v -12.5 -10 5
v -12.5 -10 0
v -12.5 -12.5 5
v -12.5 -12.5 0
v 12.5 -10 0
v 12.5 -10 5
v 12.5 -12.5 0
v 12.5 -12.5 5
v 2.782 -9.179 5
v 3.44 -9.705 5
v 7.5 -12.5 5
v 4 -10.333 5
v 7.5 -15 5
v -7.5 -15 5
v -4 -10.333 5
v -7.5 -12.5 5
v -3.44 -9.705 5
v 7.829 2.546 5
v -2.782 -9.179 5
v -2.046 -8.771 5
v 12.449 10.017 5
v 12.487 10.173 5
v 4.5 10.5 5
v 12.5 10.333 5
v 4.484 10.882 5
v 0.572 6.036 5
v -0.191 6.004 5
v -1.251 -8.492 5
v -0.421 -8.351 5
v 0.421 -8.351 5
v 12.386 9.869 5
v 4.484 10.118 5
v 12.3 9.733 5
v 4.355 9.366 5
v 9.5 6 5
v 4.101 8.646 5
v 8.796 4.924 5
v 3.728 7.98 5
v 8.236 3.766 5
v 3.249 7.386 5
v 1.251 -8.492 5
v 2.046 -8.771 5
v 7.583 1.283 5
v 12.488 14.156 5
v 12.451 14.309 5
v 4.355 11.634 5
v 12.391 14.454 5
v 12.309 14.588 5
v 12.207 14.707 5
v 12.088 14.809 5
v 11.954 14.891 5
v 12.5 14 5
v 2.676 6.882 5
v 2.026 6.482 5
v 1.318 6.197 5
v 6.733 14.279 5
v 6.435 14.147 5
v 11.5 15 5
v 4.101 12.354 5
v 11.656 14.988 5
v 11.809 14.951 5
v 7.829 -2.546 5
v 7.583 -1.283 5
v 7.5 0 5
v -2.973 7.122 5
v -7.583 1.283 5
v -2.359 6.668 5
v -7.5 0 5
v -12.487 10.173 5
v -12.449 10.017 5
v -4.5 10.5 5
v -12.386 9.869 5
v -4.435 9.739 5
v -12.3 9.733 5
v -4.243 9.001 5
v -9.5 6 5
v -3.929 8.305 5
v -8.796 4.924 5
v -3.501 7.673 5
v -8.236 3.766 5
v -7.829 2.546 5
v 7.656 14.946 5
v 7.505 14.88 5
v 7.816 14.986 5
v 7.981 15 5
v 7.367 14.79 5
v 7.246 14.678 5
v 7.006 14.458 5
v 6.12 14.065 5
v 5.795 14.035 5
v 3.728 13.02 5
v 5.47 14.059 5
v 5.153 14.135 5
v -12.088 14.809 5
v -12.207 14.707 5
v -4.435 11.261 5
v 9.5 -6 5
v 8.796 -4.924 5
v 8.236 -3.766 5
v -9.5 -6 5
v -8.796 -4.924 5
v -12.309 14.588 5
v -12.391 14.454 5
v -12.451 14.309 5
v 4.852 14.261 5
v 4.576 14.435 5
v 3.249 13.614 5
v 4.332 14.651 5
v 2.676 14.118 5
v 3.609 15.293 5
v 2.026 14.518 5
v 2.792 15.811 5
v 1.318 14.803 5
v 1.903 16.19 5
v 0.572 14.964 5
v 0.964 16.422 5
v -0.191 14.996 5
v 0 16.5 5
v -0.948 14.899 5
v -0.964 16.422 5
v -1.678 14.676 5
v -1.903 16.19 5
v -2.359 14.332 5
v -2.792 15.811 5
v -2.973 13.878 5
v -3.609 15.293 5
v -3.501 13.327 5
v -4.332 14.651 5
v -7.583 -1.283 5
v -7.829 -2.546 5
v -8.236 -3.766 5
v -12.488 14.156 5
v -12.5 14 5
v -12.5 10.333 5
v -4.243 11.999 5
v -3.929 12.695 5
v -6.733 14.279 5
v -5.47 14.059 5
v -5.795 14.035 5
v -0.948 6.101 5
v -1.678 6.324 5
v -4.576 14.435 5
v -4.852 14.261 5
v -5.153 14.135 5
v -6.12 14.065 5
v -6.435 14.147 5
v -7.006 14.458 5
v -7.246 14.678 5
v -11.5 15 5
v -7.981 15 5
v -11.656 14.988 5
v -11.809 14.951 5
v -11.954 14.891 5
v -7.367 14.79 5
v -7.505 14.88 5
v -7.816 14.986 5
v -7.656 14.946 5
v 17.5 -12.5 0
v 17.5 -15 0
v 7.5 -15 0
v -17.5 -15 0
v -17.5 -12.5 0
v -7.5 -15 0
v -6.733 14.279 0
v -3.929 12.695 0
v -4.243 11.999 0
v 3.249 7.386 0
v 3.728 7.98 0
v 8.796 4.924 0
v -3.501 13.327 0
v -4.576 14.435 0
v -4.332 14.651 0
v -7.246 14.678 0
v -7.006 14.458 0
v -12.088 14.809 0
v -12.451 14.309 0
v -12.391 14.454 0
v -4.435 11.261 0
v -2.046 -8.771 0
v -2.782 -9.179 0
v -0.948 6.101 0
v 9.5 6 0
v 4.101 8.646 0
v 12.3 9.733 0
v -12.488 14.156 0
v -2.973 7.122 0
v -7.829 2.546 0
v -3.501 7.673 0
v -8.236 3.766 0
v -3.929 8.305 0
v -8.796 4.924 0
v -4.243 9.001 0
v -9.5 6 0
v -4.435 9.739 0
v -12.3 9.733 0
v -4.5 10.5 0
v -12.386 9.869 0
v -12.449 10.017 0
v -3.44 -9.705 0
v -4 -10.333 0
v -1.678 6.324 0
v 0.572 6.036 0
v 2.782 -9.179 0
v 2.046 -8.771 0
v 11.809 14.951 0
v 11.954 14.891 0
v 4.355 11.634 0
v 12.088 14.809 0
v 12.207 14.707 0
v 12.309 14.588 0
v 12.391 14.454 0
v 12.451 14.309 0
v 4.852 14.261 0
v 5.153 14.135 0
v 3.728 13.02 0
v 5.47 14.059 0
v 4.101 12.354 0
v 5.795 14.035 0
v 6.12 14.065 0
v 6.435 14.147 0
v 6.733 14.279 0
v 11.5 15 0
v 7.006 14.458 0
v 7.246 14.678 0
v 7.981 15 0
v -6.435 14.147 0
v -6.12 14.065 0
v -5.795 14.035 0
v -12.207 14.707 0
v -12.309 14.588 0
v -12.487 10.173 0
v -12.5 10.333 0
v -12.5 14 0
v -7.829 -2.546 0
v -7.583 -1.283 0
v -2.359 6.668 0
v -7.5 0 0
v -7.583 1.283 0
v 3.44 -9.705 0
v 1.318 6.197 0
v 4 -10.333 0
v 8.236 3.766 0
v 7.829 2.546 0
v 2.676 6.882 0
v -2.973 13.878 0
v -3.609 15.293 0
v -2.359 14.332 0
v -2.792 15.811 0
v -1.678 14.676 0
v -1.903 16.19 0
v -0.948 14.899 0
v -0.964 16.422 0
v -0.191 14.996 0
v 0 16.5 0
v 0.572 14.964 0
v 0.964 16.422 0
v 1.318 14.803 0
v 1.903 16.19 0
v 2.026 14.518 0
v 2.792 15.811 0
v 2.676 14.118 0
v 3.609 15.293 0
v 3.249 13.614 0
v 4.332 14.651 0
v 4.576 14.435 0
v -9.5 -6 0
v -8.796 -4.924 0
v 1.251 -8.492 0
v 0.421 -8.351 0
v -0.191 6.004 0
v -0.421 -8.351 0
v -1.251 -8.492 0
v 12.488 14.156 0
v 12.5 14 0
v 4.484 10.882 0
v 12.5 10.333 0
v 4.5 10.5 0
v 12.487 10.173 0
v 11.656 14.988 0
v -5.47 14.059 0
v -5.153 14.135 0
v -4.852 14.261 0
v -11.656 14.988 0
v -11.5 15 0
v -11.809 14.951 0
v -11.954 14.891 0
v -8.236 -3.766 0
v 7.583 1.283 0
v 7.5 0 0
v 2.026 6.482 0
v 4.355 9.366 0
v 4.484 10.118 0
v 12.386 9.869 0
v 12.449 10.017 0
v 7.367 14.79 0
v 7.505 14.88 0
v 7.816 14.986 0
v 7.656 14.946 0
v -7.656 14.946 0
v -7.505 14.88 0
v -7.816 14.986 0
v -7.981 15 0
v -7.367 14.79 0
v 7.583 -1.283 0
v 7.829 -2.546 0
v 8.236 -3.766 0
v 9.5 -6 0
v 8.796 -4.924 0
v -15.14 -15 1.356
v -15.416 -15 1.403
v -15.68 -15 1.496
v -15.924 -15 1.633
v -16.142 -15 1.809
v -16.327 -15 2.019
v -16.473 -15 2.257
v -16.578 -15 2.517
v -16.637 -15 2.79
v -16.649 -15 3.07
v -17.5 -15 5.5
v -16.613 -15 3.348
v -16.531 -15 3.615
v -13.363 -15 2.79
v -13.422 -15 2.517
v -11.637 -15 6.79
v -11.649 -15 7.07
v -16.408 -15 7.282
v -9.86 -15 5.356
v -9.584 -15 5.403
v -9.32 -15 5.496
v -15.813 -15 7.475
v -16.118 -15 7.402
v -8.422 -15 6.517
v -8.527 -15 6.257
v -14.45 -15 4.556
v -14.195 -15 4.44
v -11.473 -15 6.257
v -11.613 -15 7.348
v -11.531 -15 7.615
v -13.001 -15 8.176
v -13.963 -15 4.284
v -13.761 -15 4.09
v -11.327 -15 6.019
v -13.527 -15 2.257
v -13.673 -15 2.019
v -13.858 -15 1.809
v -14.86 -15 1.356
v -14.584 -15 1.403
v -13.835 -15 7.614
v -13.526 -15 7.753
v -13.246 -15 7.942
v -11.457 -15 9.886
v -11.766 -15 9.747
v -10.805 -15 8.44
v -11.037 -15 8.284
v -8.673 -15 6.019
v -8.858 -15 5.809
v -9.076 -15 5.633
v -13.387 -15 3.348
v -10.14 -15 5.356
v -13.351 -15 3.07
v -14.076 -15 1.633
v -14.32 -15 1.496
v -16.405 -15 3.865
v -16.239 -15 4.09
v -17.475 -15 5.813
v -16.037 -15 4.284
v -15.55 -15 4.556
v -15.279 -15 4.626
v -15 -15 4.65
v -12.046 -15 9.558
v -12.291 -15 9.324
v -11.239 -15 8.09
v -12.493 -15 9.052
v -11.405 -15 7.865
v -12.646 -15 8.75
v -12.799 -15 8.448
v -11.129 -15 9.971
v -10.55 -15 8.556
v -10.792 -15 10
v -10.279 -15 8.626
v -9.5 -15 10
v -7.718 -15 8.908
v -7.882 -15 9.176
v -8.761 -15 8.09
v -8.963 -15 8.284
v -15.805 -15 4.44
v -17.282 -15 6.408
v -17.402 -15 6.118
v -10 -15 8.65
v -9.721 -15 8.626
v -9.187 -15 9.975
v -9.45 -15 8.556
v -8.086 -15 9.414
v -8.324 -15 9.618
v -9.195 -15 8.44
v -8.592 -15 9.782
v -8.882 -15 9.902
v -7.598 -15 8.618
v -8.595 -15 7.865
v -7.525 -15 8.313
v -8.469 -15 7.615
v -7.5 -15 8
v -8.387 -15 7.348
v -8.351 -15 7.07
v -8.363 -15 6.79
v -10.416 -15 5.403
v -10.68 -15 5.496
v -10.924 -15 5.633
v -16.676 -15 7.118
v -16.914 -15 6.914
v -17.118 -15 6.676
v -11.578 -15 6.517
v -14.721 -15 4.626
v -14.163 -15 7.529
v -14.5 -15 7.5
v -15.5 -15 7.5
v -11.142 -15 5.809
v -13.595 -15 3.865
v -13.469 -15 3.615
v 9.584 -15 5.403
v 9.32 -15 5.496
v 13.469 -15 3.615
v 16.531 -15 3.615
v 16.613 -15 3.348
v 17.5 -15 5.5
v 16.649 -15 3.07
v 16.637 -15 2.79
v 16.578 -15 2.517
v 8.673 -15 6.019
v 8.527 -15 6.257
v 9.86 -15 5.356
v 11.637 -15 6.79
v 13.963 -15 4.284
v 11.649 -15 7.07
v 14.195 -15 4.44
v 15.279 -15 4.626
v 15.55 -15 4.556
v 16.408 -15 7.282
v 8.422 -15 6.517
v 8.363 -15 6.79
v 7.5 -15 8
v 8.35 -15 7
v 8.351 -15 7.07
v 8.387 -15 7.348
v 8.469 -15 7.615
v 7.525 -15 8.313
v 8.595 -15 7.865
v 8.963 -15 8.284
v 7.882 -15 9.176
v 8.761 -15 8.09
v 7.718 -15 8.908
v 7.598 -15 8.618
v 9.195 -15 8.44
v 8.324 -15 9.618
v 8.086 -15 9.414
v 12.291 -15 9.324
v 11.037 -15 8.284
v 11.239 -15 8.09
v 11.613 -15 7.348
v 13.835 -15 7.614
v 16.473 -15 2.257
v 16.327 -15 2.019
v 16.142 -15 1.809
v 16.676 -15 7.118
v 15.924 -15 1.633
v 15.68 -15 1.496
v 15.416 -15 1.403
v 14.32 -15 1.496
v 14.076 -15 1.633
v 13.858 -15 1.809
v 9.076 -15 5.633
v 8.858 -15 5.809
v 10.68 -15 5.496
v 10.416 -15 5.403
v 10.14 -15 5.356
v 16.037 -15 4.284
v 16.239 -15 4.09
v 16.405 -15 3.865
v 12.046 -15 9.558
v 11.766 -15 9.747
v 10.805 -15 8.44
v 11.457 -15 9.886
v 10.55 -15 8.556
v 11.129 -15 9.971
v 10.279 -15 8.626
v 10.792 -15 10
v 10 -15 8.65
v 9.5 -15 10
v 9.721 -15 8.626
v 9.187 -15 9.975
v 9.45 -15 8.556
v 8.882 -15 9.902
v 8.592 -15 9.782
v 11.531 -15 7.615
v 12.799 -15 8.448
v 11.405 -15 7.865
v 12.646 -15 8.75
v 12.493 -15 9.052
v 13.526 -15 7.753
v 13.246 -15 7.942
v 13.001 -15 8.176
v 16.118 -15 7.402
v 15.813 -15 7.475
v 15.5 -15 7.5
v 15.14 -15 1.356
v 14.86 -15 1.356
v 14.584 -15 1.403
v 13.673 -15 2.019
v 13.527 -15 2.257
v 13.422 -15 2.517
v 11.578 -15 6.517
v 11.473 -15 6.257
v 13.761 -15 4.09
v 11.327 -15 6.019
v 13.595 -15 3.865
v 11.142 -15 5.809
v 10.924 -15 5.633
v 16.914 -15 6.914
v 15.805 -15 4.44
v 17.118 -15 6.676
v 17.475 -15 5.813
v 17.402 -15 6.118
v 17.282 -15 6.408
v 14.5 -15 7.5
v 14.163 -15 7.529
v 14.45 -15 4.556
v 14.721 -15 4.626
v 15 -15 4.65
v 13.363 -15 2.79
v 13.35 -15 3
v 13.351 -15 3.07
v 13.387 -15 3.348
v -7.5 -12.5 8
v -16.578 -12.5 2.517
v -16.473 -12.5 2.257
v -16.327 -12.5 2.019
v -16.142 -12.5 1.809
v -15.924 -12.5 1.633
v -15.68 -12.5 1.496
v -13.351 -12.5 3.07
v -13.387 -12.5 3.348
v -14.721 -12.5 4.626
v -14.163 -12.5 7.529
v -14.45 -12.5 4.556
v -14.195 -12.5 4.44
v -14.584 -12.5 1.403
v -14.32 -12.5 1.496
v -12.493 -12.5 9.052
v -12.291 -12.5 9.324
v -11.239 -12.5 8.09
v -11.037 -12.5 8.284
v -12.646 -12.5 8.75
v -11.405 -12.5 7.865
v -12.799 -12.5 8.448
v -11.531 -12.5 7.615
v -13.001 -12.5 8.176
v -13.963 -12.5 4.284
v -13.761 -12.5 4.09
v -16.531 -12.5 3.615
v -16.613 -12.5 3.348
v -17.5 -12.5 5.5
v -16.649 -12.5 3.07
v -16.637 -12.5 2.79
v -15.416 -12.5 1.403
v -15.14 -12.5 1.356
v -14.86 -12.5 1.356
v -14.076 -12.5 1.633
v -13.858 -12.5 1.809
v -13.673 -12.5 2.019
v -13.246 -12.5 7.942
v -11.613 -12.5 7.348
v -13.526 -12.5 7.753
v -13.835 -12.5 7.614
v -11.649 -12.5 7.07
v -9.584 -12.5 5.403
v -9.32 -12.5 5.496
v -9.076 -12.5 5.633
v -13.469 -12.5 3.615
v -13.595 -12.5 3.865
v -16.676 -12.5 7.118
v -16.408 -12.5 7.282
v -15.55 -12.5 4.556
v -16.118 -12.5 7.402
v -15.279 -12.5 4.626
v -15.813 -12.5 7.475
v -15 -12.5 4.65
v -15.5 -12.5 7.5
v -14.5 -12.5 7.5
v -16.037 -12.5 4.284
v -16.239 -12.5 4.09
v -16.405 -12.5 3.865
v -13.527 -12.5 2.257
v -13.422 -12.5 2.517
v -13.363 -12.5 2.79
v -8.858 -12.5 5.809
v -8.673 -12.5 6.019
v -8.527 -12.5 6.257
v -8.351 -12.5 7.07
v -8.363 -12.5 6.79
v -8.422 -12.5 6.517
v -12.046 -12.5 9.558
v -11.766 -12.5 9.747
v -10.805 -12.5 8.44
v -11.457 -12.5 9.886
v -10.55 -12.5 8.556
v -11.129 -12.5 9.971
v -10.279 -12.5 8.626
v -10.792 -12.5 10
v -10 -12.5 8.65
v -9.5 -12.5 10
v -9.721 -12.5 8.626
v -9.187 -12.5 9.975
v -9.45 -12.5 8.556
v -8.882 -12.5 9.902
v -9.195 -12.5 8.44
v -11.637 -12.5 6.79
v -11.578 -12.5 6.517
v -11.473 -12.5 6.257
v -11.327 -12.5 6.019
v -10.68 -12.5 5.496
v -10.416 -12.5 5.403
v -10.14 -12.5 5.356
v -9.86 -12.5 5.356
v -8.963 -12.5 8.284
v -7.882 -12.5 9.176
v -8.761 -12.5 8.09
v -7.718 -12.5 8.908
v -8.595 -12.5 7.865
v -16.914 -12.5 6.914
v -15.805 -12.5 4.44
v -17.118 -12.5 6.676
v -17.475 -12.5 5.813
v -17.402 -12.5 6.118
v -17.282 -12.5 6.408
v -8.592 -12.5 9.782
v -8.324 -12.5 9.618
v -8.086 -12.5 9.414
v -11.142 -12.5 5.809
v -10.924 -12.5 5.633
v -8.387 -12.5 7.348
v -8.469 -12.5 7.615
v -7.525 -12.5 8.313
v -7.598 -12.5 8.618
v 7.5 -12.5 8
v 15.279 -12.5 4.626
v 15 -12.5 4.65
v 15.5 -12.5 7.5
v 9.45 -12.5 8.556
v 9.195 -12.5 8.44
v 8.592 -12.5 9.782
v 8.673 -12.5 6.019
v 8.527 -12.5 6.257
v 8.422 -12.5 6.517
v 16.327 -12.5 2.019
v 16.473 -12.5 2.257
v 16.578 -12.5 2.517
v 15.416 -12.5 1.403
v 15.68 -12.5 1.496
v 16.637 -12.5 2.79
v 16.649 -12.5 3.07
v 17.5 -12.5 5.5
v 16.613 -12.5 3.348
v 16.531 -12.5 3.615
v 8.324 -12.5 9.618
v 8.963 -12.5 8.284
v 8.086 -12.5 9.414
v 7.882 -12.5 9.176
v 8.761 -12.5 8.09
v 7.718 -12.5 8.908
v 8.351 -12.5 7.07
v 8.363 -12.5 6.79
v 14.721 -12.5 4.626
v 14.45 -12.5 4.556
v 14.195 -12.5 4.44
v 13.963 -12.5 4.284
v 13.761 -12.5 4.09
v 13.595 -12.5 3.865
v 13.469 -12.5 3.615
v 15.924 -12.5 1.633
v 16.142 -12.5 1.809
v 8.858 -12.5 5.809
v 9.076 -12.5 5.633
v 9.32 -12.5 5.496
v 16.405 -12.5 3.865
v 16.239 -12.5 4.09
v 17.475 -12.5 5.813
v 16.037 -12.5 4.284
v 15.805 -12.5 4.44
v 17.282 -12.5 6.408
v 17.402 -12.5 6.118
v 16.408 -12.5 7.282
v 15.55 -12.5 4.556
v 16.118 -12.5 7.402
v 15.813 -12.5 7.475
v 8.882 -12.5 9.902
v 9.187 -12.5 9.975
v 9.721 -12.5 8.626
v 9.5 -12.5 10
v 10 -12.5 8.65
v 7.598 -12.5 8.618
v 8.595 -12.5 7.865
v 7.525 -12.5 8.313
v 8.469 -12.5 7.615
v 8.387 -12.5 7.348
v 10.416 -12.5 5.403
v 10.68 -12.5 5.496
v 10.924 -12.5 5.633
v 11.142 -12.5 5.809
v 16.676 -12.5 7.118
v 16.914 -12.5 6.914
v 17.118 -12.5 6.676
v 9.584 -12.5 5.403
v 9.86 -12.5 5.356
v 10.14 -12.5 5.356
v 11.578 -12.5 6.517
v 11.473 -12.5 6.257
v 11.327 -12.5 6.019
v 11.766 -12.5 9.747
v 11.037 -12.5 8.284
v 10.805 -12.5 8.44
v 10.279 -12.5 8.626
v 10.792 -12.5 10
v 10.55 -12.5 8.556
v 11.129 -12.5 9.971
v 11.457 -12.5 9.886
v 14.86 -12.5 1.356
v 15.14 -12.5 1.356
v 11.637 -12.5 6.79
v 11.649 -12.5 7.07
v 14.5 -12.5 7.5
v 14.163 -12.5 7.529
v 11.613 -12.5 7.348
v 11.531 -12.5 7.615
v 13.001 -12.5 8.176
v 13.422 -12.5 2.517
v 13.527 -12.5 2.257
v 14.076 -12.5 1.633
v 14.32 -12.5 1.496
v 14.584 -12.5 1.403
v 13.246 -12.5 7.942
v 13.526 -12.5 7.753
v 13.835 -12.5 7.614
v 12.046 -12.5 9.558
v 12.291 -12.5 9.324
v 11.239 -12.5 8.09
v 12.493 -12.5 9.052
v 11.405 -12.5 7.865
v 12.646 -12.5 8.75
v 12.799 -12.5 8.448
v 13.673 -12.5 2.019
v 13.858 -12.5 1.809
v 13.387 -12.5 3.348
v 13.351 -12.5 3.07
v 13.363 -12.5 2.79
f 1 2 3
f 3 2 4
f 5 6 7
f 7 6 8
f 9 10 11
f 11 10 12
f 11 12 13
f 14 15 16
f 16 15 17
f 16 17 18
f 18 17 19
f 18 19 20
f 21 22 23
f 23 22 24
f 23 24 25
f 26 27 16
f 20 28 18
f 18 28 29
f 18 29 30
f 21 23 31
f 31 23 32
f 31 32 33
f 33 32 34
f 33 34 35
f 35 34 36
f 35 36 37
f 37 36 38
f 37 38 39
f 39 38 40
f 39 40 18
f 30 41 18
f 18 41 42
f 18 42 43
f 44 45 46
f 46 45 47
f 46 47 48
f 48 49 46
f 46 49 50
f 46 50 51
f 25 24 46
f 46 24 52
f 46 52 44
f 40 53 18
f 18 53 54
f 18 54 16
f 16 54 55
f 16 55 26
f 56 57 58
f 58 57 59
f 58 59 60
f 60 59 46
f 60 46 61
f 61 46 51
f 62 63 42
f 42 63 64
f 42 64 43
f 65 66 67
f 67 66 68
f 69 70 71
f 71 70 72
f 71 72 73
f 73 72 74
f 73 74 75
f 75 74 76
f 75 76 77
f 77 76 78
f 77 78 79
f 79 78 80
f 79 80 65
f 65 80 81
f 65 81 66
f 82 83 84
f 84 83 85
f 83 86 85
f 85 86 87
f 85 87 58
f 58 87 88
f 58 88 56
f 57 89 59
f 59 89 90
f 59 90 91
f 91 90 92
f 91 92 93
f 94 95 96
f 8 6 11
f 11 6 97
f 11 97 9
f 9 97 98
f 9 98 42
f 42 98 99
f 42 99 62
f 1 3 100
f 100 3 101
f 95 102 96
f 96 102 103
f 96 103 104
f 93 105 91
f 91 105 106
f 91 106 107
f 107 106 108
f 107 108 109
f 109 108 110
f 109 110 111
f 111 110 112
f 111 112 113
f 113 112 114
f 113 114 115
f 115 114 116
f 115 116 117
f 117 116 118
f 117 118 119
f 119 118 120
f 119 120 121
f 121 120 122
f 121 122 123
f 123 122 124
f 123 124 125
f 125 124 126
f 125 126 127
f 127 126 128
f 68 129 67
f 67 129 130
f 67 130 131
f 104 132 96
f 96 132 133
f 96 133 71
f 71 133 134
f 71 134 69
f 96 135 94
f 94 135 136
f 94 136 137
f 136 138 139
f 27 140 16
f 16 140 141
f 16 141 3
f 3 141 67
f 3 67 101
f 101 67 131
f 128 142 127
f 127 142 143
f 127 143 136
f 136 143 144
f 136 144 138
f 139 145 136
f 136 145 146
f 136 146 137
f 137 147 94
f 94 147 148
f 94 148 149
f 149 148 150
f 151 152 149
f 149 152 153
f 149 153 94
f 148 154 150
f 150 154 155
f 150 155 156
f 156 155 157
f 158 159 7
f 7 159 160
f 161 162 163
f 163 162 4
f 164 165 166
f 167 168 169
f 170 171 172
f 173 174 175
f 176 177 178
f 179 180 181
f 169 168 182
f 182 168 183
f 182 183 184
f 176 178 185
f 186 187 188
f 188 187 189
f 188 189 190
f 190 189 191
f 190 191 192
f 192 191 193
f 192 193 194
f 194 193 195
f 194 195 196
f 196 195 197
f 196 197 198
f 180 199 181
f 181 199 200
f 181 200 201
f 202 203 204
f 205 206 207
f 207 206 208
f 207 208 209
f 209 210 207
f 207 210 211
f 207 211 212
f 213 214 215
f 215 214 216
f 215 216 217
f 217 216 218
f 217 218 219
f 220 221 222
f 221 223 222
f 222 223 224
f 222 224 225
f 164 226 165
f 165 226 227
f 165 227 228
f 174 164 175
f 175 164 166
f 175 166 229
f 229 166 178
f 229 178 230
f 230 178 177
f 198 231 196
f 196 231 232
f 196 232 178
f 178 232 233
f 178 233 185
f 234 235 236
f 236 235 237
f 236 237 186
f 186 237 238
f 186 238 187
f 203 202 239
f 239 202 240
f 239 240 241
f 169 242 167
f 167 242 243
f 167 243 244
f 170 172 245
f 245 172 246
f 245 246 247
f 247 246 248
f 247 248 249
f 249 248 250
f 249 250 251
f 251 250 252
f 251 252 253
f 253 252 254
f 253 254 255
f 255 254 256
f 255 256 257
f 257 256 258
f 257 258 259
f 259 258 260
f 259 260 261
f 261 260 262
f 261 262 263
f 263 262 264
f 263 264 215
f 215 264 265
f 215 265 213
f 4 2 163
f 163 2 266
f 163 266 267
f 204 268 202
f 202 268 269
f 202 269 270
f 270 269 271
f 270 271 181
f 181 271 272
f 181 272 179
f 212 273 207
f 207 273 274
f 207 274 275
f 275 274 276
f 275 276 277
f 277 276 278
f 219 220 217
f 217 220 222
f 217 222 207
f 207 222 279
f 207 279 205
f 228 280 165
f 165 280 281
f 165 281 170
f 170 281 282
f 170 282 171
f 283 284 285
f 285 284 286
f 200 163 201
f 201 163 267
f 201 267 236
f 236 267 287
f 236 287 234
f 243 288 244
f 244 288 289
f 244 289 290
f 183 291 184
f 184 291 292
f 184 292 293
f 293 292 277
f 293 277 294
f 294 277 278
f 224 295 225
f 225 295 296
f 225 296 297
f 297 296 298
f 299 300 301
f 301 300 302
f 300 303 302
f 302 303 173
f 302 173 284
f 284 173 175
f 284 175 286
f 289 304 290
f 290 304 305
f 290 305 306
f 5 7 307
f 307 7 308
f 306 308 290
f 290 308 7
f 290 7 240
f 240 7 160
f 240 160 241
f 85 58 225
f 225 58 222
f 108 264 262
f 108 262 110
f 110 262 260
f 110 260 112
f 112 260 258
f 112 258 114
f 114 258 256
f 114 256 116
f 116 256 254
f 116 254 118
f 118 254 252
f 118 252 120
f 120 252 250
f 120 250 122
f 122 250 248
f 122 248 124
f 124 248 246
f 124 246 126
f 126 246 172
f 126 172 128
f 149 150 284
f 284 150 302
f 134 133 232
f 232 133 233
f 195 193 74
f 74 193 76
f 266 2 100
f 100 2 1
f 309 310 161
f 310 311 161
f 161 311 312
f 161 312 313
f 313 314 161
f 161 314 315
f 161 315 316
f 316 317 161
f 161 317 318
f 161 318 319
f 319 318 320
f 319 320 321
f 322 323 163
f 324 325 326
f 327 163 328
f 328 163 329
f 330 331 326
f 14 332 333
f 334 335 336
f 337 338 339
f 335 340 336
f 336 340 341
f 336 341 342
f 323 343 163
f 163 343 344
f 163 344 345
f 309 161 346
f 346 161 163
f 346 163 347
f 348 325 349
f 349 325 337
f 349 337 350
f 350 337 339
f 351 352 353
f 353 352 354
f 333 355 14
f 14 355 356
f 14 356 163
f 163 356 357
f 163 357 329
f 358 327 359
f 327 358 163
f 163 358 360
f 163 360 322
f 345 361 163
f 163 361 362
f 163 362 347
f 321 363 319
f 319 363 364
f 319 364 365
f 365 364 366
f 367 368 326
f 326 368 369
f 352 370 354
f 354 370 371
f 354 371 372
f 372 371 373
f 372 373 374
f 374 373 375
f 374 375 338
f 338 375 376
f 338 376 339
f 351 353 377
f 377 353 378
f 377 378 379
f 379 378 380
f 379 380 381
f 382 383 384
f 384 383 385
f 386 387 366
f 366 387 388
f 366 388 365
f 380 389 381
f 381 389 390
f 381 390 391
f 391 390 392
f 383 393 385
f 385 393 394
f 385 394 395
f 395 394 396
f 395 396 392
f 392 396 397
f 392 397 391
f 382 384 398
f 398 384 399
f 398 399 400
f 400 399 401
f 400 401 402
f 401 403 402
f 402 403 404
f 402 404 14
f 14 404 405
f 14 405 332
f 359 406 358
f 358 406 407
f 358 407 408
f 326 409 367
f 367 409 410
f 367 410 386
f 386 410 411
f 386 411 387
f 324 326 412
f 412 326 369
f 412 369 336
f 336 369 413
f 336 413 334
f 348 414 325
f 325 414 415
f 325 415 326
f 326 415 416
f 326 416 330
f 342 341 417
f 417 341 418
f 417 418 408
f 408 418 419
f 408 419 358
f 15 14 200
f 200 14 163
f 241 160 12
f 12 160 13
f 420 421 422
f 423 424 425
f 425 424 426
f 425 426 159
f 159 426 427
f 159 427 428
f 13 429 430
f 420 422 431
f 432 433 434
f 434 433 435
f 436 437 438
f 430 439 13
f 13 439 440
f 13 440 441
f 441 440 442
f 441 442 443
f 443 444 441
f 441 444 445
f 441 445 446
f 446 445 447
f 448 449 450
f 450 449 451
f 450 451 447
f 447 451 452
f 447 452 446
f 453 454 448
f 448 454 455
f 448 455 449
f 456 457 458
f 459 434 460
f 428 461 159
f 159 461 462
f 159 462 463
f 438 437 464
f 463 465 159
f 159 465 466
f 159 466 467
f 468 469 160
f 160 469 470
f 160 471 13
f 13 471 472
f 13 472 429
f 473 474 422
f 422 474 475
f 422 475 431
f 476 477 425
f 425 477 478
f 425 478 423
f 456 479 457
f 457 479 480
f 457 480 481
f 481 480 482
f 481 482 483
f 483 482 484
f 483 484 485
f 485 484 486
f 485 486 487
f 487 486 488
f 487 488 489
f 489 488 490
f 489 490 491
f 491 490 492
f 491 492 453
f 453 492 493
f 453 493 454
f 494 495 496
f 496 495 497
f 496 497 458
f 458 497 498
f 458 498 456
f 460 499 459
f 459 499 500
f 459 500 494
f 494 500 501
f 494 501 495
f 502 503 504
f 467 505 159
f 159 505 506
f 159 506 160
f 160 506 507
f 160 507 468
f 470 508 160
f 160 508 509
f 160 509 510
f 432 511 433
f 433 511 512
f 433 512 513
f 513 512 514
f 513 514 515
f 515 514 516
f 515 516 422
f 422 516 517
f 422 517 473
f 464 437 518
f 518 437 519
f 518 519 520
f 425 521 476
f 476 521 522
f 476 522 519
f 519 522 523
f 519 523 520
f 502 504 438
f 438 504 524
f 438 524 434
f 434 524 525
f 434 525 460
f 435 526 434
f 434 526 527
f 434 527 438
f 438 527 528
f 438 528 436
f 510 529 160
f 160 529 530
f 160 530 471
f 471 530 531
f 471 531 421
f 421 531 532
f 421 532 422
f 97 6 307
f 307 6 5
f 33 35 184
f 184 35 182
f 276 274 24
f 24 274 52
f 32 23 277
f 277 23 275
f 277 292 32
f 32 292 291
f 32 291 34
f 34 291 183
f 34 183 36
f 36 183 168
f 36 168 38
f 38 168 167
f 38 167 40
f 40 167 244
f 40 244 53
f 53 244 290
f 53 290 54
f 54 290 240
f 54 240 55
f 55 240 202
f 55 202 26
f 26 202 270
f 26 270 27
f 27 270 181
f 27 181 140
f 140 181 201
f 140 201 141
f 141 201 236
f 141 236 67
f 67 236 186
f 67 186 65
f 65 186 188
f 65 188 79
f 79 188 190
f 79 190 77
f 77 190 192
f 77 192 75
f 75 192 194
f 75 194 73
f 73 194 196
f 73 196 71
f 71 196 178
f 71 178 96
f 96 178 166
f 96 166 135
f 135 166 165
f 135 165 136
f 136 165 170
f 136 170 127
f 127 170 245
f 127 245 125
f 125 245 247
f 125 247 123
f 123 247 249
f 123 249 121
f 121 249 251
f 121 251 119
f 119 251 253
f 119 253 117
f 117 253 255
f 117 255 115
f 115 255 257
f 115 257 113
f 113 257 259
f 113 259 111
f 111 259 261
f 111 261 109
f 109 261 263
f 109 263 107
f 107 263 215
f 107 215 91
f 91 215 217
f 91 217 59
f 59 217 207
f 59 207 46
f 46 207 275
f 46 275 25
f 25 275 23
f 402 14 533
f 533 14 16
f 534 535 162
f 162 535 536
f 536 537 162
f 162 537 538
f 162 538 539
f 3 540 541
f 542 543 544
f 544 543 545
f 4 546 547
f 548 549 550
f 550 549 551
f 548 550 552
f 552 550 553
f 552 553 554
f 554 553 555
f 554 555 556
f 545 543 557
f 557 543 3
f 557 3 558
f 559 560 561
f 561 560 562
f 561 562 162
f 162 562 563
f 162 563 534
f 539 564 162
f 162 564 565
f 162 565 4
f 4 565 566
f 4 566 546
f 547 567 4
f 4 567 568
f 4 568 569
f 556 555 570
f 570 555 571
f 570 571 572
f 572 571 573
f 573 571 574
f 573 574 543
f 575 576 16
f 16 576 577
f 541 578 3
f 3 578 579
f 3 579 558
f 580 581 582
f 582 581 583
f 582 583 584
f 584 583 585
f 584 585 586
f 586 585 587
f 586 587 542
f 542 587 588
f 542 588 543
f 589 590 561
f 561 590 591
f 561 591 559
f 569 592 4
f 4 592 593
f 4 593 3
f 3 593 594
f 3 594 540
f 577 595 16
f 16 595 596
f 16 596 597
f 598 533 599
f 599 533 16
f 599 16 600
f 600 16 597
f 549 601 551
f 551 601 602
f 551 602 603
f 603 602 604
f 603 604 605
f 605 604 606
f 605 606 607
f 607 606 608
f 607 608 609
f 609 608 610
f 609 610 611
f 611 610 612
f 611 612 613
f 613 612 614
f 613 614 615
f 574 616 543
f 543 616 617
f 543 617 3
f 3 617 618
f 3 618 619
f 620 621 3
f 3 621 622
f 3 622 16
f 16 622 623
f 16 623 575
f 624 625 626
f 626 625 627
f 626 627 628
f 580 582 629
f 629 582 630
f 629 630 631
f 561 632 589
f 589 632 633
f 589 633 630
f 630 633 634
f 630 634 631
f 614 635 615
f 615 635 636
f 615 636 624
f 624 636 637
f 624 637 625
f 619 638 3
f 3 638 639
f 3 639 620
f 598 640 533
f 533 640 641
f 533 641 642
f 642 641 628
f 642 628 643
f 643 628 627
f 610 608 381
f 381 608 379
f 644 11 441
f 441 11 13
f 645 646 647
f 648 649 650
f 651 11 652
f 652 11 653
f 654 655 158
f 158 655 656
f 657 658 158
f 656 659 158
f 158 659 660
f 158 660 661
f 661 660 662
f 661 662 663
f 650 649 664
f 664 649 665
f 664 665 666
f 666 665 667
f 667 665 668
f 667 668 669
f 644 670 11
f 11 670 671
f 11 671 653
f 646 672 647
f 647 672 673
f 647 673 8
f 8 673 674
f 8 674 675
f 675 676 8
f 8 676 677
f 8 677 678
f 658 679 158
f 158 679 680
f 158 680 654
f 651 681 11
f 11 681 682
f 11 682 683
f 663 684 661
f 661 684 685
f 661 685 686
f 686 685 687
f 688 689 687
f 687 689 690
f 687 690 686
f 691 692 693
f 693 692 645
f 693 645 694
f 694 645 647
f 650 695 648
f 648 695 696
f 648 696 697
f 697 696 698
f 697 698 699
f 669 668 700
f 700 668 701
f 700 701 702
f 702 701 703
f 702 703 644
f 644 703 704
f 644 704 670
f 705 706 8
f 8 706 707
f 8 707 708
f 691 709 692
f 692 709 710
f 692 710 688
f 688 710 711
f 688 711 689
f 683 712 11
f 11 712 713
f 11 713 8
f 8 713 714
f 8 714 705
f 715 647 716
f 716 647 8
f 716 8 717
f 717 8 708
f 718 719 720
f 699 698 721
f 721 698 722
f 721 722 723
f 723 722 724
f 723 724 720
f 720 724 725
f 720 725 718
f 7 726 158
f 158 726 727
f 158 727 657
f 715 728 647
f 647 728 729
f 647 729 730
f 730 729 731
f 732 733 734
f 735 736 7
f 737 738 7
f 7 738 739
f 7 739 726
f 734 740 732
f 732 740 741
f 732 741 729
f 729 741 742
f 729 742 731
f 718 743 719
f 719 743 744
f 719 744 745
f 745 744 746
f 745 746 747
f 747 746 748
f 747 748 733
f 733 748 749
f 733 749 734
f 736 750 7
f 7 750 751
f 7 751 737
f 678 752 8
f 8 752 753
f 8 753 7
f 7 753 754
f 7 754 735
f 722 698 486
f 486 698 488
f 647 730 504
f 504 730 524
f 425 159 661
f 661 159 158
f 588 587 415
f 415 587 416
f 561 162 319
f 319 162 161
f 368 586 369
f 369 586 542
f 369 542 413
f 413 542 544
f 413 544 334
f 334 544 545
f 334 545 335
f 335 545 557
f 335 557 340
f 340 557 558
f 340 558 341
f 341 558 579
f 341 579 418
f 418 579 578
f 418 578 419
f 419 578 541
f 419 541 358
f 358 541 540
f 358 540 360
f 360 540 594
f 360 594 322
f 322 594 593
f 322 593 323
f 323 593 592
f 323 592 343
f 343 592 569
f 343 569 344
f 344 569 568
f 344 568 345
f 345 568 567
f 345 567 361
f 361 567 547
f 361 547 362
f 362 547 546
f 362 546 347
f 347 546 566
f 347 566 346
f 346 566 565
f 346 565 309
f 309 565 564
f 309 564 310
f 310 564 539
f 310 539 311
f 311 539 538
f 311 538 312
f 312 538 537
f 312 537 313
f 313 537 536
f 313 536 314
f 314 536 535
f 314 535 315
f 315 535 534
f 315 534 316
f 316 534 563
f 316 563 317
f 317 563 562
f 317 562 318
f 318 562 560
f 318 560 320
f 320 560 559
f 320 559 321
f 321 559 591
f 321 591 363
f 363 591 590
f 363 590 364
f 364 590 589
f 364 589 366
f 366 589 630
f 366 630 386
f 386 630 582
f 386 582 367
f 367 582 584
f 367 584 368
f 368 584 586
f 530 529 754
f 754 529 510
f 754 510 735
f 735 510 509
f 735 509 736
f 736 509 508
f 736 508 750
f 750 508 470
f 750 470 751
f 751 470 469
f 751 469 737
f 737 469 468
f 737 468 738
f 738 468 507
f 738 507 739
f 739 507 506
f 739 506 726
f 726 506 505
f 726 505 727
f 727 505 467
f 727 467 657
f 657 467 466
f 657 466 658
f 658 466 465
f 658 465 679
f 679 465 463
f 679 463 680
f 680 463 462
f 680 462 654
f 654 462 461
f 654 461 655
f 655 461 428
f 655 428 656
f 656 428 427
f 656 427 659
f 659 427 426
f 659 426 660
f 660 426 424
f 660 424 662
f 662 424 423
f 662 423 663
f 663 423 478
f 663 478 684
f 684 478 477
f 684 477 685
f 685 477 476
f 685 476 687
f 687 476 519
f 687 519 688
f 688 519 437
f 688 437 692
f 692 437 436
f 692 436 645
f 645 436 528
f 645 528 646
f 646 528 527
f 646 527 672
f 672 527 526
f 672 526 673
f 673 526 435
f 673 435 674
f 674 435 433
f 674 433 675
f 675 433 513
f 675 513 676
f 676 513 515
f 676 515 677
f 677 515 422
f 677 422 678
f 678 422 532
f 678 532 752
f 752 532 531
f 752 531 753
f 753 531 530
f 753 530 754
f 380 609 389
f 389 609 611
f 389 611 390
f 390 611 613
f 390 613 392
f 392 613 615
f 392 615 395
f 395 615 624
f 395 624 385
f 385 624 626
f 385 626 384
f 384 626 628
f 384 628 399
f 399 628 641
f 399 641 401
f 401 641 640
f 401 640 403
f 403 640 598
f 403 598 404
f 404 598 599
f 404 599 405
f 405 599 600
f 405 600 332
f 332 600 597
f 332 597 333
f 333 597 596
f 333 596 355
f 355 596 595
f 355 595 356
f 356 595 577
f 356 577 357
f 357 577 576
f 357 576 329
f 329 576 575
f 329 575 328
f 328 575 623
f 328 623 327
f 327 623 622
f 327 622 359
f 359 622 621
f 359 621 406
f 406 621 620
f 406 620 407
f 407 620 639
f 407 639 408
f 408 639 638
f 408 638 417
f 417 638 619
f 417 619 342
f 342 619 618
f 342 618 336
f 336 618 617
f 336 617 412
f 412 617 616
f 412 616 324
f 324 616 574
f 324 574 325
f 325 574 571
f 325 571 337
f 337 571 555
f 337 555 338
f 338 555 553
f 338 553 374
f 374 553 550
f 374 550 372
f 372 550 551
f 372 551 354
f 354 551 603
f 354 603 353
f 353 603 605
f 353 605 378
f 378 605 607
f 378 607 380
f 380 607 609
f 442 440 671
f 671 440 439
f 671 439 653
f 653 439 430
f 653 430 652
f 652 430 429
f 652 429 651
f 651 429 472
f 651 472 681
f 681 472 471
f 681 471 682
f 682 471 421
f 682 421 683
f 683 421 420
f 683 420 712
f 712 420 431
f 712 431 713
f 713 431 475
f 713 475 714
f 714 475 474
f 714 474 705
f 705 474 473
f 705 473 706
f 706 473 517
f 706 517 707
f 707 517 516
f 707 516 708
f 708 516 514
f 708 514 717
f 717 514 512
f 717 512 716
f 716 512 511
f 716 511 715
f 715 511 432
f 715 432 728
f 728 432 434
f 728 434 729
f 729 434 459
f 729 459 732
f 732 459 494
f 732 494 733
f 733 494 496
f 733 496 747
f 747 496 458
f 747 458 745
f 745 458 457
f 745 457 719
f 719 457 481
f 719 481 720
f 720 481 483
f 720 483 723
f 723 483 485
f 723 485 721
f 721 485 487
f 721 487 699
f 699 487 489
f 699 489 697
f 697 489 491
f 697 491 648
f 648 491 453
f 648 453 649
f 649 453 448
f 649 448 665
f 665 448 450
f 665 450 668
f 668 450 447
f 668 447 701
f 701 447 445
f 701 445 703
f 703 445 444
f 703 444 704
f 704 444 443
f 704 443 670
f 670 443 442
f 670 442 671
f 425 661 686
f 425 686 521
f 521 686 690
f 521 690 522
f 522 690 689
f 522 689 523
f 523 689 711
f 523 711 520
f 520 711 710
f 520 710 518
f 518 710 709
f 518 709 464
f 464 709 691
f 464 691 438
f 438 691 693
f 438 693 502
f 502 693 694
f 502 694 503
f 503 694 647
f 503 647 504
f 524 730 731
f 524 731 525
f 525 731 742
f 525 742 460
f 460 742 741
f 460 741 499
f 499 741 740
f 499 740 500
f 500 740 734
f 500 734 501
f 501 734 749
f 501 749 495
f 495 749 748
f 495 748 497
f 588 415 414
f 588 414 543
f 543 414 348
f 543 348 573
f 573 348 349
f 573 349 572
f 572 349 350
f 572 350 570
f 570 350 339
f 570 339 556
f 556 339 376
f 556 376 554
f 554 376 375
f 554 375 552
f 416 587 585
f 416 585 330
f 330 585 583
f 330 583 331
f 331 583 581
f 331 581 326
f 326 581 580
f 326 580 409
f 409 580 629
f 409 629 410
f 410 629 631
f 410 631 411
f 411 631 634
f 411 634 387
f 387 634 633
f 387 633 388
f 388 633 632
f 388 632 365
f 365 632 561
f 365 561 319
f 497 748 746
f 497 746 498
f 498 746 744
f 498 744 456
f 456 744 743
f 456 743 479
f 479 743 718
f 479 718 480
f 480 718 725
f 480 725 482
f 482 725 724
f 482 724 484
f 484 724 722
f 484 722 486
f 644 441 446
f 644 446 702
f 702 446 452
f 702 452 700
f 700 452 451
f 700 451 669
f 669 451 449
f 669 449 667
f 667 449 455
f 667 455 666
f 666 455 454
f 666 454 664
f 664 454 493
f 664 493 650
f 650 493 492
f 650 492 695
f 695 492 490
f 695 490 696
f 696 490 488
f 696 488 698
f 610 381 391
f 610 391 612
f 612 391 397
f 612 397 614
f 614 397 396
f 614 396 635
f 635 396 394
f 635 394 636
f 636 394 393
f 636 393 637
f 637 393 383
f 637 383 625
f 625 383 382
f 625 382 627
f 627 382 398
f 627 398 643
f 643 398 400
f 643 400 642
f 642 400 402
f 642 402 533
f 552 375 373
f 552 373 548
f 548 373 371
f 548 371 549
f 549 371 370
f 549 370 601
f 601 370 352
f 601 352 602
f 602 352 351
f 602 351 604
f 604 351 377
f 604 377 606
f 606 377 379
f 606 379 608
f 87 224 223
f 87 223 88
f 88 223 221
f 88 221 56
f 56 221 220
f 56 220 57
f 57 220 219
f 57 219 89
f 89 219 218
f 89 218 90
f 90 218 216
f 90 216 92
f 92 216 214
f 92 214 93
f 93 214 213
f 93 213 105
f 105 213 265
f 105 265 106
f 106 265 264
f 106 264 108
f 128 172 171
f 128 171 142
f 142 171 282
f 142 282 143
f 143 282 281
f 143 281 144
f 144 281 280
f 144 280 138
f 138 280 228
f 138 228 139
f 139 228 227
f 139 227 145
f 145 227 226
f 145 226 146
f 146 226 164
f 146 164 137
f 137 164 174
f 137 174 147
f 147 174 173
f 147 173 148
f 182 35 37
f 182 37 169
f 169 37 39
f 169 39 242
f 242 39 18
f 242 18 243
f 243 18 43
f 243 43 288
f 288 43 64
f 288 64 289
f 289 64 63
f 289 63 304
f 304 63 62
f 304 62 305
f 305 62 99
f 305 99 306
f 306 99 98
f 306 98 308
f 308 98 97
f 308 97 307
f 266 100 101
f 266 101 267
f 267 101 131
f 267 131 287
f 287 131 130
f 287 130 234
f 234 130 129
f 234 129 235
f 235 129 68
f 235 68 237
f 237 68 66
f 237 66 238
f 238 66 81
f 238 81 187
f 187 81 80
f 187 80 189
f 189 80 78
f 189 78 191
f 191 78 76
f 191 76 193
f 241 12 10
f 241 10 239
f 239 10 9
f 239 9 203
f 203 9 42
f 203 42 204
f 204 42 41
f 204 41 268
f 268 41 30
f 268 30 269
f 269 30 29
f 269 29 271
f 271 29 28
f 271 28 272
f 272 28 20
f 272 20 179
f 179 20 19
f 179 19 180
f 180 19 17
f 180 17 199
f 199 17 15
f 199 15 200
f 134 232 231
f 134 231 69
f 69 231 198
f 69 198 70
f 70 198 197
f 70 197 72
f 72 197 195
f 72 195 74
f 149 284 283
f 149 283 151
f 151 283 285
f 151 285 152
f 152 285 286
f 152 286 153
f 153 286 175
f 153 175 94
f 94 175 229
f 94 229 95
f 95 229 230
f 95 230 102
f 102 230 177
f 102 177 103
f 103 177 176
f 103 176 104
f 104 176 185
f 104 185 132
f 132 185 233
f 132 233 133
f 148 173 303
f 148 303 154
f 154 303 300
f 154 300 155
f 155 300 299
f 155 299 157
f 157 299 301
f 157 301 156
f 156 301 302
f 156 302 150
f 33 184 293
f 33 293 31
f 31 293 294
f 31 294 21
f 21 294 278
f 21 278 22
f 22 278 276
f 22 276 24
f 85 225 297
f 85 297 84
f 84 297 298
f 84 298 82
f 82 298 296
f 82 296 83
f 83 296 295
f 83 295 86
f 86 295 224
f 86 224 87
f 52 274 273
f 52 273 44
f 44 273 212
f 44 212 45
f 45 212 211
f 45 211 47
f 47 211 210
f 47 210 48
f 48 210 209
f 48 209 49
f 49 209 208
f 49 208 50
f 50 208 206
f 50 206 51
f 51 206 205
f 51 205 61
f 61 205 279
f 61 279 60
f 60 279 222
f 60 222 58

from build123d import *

# Parameters (mm, degrees)
SKETCH1_R           = 4.5
BOSS_EXTRUDE1_DEPTH = 5
SKETCH2_W           = 5
SKETCH2_H           = 2.5
BOSS_EXTRUDE2_DEPTH = 5
SKETCH3_W           = 7.5
SKETCH3_H           = 2.5
BOSS_EXTRUDE3_DEPTH = 5
SKETCH4_W           = 7.5
SKETCH4_H           = 2.5
BOSS_EXTRUDE4_DEPTH = 5
SKETCH5_R           = 1.65
CUT_EXTRUDE1_DEPTH  = 5
FILLET1_R           = 2
FILLET2_R           = 2
FILLET3_R           = 2
FILLET4_R           = 10
FILLET5_R           = 5
FILLET6_R           = 1


with BuildPart() as part:
    # Sketch1 → Boss-Extrude1 (new body)
    with BuildSketch(Plane.XY):
        with BuildLine():
            Line((-7.5, 15), (-5.646592756, 12.528790341))
            ThreePointArc((-5.646592756, 12.528790341), (0, 16.5), (5.646592756, 12.528790341))
            Line((5.646592756, 12.528790341), (7.5, 15))
            Line((7.5, 15), (12.5, 15))
            Line((12.5, 15), (12.5, 10))
            Line((12.5, 10), (5, 0))
            Line((5, 0), (12.5, -10))
            Line((12.5, -10), (12.5, -15))
            Line((12.5, -15), (7.5, -15))
            Line((7.5, -15), (0, -5))
            Line((0, -5), (-7.5, -15))
            Line((-7.5, -15), (-12.5, -15))
            Line((-12.5, -15), (-12.5, -10))
            Line((-12.5, -10), (-5, 0))
            Line((-5, 0), (-12.5, 10))
            Line((-12.5, 10), (-12.5, 15))
            Line((-12.5, 15), (-7.5, 15))
        make_face()
        with Locations((0, 10.5)):
            Circle(SKETCH1_R, mode=Mode.SUBTRACT)
    extrude(amount=BOSS_EXTRUDE1_DEPTH)

    # Sketch2 → Boss-Extrude2 (add)
    with BuildSketch(Plane.XY.offset(5)):
        with Locations((-10, -13.75)):
            Rectangle(SKETCH2_W, SKETCH2_H)
        with Locations((10, -13.75)):
            Rectangle(SKETCH2_W, SKETCH2_H)
    extrude(amount=BOSS_EXTRUDE2_DEPTH)

    # Sketch3 → Boss-Extrude3 (add)
    with BuildSketch(Plane(origin=(12.5, 0, 0), x_dir=(0, 0, -1), z_dir=(1, 0, 0))):
        with Locations((-3.75, -13.75)):
            Rectangle(SKETCH3_W, SKETCH3_H)
    extrude(amount=BOSS_EXTRUDE3_DEPTH)

    # Sketch4 → Boss-Extrude4 (add)
    with BuildSketch(Plane.ZY.offset(12.5)):
        with Locations((3.75, -13.75)):
            Rectangle(SKETCH4_W, SKETCH4_H)
    extrude(amount=BOSS_EXTRUDE4_DEPTH)

    # Sketch5 → Cut-Extrude1 (cut)
    with BuildSketch(Plane(origin=(0, -12.5, 0), x_dir=(1, 0, 0), z_dir=(0, 1, 0))):
        with Locations((-15, -3)):
            Circle(SKETCH5_R)
        with Locations((15, -3)):
            Circle(SKETCH5_R)
        with Locations((-10, -7)):
            Circle(SKETCH5_R)
        with Locations((10, -7)):
            Circle(SKETCH5_R)
    extrude(amount=-CUT_EXTRUDE1_DEPTH, mode=Mode.SUBTRACT)

    # Fillet1
    fillet1_edges = [part.edges().sort_by_distance(p)[0] for p in [
        (12.5, -13.75, 7.5),
        (17.5, -13.75, 7.5),
        (-12.5, -13.75, 7.5),
        (-17.5, -13.75, 7.5),
    ]]
    fillet(fillet1_edges, radius=FILLET1_R)

    # Fillet2
    fillet2_edges = [part.edges().sort_by_distance(p)[0] for p in [
        (12.5, -13.75, 10),
        (7.5, -13.75, 10),
        (-7.5, -13.75, 10),
        (-12.5, -13.75, 10),
    ]]
    fillet(fillet2_edges, radius=FILLET2_R)

    # Fillet3
    fillet3_edges = [part.edges().sort_by_distance(p)[0] for p in [
        (-5.646592756, 12.528790341, 2.5),
        (5.646592756, 12.528790341, 2.5),
    ]]
    fillet(fillet3_edges, radius=FILLET3_R)

    # Fillet4
    fillet4_edges = [part.edges().sort_by_distance(p)[0] for p in [
        (5, 0, 2.5),
        (-5, 0, 2.5),
    ]]
    fillet(fillet4_edges, radius=FILLET4_R)

    # Fillet5
    fillet5_edges = [part.edges().sort_by_distance(p)[0] for p in [
        (0, -5, 2.5),
    ]]
    fillet(fillet5_edges, radius=FILLET5_R)

    # Fillet6
    fillet6_edges = [part.edges().sort_by_distance(p)[0] for p in [
        (-12.5, 10, 2.5),
        (-12.5, 15, 2.5),
        (-7.5, 15, 2.5),
        (12.5, 10, 2.5),
        (7.5, 15, 2.5),
        (12.5, 15, 2.5),
    ]]
    fillet(fillet6_edges, radius=FILLET6_R)


solid = part.part
